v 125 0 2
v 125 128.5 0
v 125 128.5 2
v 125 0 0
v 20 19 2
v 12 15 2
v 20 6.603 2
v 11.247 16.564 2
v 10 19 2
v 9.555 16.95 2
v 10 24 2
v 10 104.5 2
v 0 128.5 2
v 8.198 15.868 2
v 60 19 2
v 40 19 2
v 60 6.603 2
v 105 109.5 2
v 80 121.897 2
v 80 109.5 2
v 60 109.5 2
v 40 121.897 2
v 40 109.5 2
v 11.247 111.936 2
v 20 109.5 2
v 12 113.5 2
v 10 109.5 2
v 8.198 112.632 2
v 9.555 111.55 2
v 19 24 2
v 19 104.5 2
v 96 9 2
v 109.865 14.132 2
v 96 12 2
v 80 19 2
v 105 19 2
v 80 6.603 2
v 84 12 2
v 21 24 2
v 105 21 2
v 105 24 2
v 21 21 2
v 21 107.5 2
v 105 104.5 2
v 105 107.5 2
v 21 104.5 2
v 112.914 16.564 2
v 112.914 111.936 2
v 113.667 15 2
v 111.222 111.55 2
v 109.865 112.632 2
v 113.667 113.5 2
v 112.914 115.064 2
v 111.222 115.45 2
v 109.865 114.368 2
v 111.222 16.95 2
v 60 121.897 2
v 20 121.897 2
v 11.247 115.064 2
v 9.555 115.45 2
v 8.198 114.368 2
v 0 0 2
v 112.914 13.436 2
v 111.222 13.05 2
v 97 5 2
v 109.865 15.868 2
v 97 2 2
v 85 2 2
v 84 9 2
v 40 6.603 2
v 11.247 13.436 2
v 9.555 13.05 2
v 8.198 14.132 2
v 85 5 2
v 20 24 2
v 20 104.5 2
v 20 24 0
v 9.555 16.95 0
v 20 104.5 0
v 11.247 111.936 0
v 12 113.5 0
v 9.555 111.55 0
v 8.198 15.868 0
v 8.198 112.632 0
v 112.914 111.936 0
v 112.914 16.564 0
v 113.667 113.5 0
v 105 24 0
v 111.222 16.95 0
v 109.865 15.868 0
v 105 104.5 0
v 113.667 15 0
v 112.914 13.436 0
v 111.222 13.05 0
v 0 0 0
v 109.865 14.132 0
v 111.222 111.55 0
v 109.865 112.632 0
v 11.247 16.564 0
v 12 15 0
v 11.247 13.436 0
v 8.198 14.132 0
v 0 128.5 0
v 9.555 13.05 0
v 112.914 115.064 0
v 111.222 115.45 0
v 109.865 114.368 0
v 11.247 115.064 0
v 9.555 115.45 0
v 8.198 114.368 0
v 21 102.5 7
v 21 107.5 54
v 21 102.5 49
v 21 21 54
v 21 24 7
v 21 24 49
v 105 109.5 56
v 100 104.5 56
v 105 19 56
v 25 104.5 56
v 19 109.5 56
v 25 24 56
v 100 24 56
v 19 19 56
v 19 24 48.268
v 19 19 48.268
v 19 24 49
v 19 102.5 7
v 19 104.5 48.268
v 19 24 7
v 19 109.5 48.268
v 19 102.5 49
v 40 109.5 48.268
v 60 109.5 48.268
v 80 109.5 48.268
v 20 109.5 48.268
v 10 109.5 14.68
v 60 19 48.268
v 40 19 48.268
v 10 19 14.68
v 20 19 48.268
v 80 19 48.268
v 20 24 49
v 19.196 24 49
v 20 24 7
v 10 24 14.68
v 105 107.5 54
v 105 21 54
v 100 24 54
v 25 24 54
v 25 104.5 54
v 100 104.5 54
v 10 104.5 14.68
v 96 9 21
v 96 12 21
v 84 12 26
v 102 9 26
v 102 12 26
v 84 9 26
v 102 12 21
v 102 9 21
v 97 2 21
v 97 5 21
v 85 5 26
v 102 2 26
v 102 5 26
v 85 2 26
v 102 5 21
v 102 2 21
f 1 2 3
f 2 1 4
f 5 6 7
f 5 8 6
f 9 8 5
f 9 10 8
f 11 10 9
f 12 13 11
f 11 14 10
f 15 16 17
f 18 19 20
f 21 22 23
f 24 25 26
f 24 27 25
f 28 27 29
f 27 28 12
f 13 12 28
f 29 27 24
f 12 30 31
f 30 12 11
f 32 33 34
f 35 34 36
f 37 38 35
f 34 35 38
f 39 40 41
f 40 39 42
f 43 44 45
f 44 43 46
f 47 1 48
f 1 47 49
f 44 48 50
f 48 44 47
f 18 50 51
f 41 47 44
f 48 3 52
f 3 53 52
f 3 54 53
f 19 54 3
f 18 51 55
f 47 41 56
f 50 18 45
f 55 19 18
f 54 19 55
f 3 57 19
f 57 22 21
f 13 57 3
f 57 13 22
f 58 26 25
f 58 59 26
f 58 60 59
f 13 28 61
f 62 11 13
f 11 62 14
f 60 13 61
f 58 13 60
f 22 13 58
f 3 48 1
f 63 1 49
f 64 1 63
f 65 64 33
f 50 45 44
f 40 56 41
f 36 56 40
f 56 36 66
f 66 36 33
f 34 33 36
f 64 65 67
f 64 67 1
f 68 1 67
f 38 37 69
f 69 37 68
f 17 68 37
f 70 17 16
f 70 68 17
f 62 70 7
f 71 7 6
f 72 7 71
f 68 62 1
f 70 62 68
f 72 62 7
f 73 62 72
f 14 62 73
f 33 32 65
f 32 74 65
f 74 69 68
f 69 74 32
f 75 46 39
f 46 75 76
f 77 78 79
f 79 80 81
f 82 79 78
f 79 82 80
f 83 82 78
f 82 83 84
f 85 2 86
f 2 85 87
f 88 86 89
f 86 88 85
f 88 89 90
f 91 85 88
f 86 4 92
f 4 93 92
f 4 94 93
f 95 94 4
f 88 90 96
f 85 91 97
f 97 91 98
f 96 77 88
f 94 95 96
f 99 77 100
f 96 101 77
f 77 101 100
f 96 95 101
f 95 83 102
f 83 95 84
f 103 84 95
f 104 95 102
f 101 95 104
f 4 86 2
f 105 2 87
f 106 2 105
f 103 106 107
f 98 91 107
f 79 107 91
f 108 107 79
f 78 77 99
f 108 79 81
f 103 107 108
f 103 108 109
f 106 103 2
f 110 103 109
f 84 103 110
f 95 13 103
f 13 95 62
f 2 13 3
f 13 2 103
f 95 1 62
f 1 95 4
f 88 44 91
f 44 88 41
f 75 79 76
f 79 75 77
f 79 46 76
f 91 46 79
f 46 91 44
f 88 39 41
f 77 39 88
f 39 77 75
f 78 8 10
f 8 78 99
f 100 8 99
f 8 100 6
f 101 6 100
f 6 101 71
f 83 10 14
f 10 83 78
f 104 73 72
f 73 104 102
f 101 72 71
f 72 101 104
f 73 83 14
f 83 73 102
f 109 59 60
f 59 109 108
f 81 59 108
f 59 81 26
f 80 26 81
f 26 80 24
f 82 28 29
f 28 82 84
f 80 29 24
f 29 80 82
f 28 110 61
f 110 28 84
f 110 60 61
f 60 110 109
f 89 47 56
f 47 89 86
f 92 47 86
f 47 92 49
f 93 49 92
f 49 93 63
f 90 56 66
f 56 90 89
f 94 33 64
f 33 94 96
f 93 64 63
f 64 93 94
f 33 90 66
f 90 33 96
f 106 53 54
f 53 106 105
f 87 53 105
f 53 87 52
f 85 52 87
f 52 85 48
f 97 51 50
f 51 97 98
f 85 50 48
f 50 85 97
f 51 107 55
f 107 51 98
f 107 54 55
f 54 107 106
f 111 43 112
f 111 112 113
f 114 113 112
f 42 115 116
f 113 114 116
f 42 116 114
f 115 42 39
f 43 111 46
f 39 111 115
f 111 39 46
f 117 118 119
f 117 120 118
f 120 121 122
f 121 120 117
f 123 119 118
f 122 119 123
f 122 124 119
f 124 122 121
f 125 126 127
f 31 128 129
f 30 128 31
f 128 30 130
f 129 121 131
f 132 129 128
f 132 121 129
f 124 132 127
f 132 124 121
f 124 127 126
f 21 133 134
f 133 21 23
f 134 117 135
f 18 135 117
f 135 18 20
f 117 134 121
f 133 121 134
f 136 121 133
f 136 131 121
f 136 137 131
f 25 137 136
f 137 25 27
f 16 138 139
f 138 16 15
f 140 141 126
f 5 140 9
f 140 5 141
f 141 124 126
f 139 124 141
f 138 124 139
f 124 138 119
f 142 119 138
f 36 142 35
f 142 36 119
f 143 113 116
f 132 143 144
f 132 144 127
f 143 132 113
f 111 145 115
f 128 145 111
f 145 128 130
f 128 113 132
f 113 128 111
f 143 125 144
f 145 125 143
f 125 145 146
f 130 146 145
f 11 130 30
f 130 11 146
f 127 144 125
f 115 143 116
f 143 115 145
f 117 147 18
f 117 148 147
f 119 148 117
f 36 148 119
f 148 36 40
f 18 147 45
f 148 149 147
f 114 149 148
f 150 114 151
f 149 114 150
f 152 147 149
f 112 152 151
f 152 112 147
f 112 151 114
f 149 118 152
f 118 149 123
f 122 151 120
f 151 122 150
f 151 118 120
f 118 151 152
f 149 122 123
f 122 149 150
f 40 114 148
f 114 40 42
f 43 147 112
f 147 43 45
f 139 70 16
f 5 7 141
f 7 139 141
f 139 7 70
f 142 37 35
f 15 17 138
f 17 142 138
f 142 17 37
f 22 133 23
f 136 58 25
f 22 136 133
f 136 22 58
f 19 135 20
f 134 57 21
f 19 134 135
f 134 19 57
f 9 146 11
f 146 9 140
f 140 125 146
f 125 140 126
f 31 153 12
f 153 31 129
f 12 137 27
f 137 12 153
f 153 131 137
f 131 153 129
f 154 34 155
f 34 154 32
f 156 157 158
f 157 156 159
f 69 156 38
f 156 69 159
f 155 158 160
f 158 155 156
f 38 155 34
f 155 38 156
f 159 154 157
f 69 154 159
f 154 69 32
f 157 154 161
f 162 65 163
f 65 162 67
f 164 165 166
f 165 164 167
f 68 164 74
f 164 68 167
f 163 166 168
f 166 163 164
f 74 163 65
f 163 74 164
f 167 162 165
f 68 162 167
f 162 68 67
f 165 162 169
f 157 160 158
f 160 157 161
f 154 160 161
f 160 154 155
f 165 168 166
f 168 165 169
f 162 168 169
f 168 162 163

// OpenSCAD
width =     170/2;
depth =     88.5;
height = 52.0;
thick =       2;
plateSpacing = 40;
holder = 4;

difference() {
    cube([width + plateSpacing , depth + plateSpacing ,  thick]);
    translate([plateSpacing / 2, holder + plateSpacing / 2, -1]) cube([width , depth - (holder * 2) ,  thick + 2]);
    translate([(plateSpacing)/4 , plateSpacing / 2 - 5, -1])cylinder(20, 2,2);
    translate([(plateSpacing)/4 , depth + plateSpacing / 2 + 5 , -1])cylinder(20, 2,2);
    translate([width + plateSpacing / 1.5, plateSpacing / 2 - 5, -1])cylinder(20, 2,2);
    translate([width + plateSpacing / 1.5, depth + plateSpacing / 2 + 5 , -1])cylinder(20, 2,2);
}

module case() {
    cube([width, thick, height]);
    translate([0, depth,0]) cube([width, thick, height]);
    bottomHole = 5.0;
    translate([-thick + 1, 0, 0]) difference() {
        cube([thick, depth + thick, height + thick]);
        translate([-10, bottomHole, bottomHole]) cube([20, depth - bottomHole * 2 , height - bottomHole * 2]);
    }

    topHole = 5;
    translate([0, 0, height]) difference() {
        cube([width, depth  + thick, 2]);
        translate([topHole, topHole, -5]) cube([width - topHole * 2, depth + 2 - topHole * 2 , 10]);
    }
}

translate([plateSpacing / 2, (plateSpacing / 2) -( holder / 4), thick]) case();

module support() {
    translate([0,0, height]) { 
        rotate([0,180,180])difference() {
        cube([20, 20, height]);
        rotate([-15, 0, 0]) translate([-5, 0,  -5]) cube([40, 40, height + 20]);
        }
    }
}
translate([20,20,0]) support();
translate([60,20,0]) support();
translate([20, depth + plateSpacing / 2, 0]) mirror([0,1,0]) support();
translate([60, depth + plateSpacing / 2, 0]) mirror([0,1,0]) support();

module supportBottom() {
    translate([0,0, height]) { 
        rotate([0,180,90])difference() {
        cube([5, 10, height]);
        rotate([-15, 0, 0]) translate([-5, 0,  -5]) cube([40, 40, height + 20]);
        }
    }
}
translate([20,24,0]) supportBottom();
translate([20, depth + plateSpacing - 19,0]) supportBottom();

//translate([45, 7.5, 7]) {
//    rotate([0, -90, 0])
//    difference() {
//      cylinder(25, 6, 6);
//      translate([0,0,-2.5])cylinder(30, 5, 5);
//       translate([2.5,-2.5,-2.5]) cube([8,4, 50]); 
//    }
//}
powerHolderPos = 50;
translate([34 + powerHolderPos, 9.0, 0]) cube([12, 3, height / 2]); 
translate([35 + powerHolderPos, 2.0, 0]) cube([12, 3, height / 2]); 
translate([40 + powerHolderPos + 6, 9.0, height / 2 - 5]) cube([6 ,3, 5]); 
translate([40 + powerHolderPos + 6, 2.0, height / 2 - 5]) cube([6, 3, 5]); 
